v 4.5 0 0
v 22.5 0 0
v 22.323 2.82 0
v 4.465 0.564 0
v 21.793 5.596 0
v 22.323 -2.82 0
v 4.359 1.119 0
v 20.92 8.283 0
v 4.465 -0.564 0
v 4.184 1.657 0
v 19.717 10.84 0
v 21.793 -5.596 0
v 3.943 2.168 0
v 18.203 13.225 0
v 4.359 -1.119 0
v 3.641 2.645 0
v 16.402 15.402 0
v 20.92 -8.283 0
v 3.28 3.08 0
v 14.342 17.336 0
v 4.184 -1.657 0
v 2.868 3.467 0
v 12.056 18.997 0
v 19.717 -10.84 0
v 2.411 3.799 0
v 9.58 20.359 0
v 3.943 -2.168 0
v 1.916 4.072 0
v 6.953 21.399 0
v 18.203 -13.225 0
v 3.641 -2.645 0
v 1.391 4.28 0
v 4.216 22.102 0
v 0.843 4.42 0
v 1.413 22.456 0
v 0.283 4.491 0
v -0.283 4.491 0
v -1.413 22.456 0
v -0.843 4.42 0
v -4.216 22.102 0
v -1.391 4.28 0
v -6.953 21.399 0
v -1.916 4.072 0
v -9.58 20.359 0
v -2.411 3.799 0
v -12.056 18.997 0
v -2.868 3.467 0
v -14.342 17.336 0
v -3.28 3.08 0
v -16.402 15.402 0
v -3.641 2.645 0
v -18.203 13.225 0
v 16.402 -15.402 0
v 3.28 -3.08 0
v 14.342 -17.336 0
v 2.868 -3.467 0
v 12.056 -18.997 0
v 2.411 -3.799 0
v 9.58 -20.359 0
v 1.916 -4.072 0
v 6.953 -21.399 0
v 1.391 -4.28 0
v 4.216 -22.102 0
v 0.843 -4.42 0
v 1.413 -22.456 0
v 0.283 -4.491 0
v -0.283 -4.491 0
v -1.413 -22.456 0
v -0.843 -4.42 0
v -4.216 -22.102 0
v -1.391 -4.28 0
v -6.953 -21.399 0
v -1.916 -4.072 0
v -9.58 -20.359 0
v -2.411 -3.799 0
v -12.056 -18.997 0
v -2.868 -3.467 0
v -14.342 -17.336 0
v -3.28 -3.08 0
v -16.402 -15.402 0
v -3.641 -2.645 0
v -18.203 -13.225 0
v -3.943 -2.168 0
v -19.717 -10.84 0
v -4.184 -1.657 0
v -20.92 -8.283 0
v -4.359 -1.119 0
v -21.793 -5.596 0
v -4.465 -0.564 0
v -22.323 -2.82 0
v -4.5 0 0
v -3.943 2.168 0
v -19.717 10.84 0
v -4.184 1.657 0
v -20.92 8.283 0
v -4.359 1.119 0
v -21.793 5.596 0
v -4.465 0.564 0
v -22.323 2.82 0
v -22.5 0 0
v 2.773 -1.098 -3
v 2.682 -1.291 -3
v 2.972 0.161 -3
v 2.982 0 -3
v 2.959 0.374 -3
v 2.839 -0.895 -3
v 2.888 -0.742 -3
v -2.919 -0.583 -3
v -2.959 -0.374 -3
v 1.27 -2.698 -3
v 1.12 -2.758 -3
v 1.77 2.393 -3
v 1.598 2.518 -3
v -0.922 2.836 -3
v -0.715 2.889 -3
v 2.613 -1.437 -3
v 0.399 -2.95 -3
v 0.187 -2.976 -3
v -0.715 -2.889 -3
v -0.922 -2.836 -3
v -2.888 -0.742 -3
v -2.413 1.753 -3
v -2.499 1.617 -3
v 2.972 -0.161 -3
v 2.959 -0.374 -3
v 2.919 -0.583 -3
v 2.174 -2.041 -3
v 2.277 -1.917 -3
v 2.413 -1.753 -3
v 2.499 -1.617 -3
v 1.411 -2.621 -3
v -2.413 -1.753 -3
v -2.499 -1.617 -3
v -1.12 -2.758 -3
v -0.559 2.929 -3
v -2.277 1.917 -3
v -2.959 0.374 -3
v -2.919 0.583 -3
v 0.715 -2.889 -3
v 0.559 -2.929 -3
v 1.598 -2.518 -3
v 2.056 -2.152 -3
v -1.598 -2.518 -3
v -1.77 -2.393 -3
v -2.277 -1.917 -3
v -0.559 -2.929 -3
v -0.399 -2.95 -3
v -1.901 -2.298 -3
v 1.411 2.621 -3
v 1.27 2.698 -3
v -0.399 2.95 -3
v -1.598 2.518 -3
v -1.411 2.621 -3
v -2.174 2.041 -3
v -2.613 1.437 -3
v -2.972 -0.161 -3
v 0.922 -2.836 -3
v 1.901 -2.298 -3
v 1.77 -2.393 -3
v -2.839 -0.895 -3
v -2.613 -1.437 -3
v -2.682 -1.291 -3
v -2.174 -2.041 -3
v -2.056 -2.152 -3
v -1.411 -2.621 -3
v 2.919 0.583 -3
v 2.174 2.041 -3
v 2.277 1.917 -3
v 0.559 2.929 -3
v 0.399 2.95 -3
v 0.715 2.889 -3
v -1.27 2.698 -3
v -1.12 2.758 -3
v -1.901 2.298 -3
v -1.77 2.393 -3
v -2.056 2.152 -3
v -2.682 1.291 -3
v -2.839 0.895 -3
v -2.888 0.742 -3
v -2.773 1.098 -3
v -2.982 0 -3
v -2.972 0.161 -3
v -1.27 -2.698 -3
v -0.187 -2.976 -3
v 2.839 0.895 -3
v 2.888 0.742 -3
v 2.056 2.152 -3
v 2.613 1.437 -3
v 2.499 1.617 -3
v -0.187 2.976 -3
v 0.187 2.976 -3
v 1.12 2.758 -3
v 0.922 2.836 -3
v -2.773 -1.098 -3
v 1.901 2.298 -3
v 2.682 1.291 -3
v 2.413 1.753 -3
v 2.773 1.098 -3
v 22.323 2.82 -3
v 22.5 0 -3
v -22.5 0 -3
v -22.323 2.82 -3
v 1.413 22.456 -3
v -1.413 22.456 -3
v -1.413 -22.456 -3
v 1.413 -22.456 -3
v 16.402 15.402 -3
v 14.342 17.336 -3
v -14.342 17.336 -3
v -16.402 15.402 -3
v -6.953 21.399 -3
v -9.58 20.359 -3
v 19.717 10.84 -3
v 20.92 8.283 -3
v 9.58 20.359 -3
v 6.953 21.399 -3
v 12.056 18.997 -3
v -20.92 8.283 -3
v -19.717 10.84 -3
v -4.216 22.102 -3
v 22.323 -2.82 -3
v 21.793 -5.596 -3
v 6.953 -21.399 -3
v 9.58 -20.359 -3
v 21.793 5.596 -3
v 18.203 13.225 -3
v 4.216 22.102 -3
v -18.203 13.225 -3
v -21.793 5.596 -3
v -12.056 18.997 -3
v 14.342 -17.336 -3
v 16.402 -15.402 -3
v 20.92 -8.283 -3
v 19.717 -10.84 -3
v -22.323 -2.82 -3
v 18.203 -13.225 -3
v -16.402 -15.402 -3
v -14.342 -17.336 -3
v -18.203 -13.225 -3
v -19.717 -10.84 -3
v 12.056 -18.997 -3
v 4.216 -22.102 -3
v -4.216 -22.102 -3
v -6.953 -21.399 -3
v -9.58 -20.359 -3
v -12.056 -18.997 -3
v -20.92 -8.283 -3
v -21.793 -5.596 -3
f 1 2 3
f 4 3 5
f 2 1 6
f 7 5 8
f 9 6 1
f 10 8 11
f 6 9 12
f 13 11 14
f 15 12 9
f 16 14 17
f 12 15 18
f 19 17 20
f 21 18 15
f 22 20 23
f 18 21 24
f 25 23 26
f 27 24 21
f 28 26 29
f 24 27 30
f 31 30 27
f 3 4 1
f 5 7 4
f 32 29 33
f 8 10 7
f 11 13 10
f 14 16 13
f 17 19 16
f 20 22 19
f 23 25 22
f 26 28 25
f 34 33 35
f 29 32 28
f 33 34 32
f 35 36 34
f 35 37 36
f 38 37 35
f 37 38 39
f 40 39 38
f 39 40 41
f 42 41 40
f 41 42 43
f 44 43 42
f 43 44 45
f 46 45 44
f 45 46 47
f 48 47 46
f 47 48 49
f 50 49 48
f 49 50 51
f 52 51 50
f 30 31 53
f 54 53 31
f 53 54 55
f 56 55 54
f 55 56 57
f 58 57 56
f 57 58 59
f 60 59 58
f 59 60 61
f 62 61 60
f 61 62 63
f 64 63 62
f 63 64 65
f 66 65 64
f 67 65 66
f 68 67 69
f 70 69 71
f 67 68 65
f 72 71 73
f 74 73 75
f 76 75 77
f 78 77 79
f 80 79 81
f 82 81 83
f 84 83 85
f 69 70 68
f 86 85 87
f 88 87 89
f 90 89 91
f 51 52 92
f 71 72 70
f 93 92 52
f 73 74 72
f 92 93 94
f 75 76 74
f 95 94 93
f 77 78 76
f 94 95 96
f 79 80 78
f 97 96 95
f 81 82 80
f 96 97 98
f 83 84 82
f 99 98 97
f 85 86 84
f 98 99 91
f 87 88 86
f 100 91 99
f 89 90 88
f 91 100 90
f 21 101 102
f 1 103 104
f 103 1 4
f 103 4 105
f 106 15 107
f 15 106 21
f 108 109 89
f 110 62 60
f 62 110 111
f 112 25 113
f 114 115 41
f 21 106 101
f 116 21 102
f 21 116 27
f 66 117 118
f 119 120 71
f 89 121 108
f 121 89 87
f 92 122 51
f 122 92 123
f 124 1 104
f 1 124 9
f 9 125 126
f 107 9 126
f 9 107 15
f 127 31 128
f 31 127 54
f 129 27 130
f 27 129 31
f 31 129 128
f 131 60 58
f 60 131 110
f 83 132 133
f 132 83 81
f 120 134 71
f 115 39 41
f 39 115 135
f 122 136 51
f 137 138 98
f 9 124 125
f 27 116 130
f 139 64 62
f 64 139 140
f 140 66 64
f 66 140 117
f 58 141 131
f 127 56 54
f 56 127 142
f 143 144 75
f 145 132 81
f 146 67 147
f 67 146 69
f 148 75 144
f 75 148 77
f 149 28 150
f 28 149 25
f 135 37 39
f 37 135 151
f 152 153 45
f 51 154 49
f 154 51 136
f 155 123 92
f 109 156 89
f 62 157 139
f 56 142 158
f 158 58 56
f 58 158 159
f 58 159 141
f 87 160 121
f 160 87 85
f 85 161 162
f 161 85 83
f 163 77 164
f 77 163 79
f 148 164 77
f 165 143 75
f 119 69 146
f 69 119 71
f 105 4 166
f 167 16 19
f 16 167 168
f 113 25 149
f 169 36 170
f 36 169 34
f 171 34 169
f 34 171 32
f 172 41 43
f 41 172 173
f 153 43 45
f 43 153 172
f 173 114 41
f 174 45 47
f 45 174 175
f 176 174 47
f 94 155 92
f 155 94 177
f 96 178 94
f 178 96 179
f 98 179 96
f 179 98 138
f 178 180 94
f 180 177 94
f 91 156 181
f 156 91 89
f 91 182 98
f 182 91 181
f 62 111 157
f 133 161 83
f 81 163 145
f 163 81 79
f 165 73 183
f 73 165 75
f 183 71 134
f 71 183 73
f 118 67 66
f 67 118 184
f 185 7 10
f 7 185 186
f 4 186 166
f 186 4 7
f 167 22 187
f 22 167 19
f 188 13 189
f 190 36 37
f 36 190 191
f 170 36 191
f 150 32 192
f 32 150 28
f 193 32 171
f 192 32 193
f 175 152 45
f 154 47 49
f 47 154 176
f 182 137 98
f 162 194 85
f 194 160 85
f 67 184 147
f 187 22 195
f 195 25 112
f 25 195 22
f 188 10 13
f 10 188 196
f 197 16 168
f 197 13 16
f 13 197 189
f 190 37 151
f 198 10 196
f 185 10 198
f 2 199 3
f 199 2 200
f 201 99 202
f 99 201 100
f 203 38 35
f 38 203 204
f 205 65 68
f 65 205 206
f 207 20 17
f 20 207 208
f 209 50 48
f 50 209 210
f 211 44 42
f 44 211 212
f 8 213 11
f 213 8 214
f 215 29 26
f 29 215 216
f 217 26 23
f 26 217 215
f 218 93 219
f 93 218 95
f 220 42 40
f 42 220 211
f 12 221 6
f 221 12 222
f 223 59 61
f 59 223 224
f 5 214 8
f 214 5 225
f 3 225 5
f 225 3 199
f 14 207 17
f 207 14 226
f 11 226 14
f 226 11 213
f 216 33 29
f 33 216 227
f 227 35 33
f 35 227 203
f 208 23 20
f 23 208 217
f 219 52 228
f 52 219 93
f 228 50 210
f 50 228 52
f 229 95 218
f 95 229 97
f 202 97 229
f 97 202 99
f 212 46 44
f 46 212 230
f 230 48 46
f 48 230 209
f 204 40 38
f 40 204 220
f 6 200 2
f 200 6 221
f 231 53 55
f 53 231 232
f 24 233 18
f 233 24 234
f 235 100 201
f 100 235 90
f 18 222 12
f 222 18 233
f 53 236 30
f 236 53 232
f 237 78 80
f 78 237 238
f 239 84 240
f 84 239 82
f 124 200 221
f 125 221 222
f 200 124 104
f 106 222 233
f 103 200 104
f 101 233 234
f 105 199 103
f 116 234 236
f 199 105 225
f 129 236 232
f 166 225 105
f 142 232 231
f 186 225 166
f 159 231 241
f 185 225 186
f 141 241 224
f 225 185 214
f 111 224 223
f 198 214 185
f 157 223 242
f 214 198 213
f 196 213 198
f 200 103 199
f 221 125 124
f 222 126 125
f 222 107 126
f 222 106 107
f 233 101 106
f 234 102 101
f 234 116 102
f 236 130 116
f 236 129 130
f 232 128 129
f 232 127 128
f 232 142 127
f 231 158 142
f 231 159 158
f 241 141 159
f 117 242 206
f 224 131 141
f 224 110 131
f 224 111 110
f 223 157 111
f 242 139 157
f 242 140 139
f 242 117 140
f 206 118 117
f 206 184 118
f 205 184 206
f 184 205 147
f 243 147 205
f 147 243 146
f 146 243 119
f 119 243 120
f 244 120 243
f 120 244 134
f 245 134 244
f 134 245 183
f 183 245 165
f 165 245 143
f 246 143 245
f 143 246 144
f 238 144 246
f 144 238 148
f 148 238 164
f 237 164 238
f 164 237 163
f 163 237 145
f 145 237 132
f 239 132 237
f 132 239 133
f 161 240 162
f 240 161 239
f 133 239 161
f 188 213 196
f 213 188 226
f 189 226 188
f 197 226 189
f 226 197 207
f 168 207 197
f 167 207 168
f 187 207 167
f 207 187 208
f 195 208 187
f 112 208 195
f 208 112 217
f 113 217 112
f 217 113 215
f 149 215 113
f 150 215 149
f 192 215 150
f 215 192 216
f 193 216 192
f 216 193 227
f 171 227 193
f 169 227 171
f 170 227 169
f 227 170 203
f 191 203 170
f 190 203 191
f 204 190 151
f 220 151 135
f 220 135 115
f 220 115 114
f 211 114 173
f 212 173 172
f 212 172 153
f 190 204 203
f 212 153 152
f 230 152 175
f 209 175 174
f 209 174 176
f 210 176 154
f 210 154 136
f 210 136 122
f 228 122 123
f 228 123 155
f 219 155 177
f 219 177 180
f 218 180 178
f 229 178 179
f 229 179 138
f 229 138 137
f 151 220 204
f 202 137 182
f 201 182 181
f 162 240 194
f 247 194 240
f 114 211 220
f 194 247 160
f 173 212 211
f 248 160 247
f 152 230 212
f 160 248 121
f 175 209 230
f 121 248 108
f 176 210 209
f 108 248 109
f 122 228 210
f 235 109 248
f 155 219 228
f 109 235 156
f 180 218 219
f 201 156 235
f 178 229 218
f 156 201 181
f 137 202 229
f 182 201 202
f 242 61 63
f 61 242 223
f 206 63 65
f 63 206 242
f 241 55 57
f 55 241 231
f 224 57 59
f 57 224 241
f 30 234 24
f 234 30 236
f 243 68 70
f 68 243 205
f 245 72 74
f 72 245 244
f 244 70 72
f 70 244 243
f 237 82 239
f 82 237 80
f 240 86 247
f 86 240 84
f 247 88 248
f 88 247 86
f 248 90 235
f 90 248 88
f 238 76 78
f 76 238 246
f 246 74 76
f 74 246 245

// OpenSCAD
$fn = 50;


difference() {
	union() {
		translate(v = [0, 0, -3.0000000000]) {
			cylinder(h = 3, r = 22.5000000000);
		}
	}
	union() {
		translate(v = [0, 0, 0]) {
			rotate(a = [0, 0, 0]) {
				difference() {
					union() {
						translate(v = [0, 0, -3.0000000000]) {
							cylinder(h = 3, r = 2.2500000000);
						}
						translate(v = [0, 0, -4.2000000000]) {
							cylinder(h = 4.2000000000, r1 = 2.3750000000, r2 = 4.5000000000);
						}
						translate(v = [0, 0, -3.0000000000]) {
							cylinder(h = 3, r = 2.3750000000);
						}
						translate(v = [0, 0, -3.0000000000]) {
							cylinder(h = 3, r = 2.2500000000);
						}
					}
					union();
				}
			}
		}
	}
}
